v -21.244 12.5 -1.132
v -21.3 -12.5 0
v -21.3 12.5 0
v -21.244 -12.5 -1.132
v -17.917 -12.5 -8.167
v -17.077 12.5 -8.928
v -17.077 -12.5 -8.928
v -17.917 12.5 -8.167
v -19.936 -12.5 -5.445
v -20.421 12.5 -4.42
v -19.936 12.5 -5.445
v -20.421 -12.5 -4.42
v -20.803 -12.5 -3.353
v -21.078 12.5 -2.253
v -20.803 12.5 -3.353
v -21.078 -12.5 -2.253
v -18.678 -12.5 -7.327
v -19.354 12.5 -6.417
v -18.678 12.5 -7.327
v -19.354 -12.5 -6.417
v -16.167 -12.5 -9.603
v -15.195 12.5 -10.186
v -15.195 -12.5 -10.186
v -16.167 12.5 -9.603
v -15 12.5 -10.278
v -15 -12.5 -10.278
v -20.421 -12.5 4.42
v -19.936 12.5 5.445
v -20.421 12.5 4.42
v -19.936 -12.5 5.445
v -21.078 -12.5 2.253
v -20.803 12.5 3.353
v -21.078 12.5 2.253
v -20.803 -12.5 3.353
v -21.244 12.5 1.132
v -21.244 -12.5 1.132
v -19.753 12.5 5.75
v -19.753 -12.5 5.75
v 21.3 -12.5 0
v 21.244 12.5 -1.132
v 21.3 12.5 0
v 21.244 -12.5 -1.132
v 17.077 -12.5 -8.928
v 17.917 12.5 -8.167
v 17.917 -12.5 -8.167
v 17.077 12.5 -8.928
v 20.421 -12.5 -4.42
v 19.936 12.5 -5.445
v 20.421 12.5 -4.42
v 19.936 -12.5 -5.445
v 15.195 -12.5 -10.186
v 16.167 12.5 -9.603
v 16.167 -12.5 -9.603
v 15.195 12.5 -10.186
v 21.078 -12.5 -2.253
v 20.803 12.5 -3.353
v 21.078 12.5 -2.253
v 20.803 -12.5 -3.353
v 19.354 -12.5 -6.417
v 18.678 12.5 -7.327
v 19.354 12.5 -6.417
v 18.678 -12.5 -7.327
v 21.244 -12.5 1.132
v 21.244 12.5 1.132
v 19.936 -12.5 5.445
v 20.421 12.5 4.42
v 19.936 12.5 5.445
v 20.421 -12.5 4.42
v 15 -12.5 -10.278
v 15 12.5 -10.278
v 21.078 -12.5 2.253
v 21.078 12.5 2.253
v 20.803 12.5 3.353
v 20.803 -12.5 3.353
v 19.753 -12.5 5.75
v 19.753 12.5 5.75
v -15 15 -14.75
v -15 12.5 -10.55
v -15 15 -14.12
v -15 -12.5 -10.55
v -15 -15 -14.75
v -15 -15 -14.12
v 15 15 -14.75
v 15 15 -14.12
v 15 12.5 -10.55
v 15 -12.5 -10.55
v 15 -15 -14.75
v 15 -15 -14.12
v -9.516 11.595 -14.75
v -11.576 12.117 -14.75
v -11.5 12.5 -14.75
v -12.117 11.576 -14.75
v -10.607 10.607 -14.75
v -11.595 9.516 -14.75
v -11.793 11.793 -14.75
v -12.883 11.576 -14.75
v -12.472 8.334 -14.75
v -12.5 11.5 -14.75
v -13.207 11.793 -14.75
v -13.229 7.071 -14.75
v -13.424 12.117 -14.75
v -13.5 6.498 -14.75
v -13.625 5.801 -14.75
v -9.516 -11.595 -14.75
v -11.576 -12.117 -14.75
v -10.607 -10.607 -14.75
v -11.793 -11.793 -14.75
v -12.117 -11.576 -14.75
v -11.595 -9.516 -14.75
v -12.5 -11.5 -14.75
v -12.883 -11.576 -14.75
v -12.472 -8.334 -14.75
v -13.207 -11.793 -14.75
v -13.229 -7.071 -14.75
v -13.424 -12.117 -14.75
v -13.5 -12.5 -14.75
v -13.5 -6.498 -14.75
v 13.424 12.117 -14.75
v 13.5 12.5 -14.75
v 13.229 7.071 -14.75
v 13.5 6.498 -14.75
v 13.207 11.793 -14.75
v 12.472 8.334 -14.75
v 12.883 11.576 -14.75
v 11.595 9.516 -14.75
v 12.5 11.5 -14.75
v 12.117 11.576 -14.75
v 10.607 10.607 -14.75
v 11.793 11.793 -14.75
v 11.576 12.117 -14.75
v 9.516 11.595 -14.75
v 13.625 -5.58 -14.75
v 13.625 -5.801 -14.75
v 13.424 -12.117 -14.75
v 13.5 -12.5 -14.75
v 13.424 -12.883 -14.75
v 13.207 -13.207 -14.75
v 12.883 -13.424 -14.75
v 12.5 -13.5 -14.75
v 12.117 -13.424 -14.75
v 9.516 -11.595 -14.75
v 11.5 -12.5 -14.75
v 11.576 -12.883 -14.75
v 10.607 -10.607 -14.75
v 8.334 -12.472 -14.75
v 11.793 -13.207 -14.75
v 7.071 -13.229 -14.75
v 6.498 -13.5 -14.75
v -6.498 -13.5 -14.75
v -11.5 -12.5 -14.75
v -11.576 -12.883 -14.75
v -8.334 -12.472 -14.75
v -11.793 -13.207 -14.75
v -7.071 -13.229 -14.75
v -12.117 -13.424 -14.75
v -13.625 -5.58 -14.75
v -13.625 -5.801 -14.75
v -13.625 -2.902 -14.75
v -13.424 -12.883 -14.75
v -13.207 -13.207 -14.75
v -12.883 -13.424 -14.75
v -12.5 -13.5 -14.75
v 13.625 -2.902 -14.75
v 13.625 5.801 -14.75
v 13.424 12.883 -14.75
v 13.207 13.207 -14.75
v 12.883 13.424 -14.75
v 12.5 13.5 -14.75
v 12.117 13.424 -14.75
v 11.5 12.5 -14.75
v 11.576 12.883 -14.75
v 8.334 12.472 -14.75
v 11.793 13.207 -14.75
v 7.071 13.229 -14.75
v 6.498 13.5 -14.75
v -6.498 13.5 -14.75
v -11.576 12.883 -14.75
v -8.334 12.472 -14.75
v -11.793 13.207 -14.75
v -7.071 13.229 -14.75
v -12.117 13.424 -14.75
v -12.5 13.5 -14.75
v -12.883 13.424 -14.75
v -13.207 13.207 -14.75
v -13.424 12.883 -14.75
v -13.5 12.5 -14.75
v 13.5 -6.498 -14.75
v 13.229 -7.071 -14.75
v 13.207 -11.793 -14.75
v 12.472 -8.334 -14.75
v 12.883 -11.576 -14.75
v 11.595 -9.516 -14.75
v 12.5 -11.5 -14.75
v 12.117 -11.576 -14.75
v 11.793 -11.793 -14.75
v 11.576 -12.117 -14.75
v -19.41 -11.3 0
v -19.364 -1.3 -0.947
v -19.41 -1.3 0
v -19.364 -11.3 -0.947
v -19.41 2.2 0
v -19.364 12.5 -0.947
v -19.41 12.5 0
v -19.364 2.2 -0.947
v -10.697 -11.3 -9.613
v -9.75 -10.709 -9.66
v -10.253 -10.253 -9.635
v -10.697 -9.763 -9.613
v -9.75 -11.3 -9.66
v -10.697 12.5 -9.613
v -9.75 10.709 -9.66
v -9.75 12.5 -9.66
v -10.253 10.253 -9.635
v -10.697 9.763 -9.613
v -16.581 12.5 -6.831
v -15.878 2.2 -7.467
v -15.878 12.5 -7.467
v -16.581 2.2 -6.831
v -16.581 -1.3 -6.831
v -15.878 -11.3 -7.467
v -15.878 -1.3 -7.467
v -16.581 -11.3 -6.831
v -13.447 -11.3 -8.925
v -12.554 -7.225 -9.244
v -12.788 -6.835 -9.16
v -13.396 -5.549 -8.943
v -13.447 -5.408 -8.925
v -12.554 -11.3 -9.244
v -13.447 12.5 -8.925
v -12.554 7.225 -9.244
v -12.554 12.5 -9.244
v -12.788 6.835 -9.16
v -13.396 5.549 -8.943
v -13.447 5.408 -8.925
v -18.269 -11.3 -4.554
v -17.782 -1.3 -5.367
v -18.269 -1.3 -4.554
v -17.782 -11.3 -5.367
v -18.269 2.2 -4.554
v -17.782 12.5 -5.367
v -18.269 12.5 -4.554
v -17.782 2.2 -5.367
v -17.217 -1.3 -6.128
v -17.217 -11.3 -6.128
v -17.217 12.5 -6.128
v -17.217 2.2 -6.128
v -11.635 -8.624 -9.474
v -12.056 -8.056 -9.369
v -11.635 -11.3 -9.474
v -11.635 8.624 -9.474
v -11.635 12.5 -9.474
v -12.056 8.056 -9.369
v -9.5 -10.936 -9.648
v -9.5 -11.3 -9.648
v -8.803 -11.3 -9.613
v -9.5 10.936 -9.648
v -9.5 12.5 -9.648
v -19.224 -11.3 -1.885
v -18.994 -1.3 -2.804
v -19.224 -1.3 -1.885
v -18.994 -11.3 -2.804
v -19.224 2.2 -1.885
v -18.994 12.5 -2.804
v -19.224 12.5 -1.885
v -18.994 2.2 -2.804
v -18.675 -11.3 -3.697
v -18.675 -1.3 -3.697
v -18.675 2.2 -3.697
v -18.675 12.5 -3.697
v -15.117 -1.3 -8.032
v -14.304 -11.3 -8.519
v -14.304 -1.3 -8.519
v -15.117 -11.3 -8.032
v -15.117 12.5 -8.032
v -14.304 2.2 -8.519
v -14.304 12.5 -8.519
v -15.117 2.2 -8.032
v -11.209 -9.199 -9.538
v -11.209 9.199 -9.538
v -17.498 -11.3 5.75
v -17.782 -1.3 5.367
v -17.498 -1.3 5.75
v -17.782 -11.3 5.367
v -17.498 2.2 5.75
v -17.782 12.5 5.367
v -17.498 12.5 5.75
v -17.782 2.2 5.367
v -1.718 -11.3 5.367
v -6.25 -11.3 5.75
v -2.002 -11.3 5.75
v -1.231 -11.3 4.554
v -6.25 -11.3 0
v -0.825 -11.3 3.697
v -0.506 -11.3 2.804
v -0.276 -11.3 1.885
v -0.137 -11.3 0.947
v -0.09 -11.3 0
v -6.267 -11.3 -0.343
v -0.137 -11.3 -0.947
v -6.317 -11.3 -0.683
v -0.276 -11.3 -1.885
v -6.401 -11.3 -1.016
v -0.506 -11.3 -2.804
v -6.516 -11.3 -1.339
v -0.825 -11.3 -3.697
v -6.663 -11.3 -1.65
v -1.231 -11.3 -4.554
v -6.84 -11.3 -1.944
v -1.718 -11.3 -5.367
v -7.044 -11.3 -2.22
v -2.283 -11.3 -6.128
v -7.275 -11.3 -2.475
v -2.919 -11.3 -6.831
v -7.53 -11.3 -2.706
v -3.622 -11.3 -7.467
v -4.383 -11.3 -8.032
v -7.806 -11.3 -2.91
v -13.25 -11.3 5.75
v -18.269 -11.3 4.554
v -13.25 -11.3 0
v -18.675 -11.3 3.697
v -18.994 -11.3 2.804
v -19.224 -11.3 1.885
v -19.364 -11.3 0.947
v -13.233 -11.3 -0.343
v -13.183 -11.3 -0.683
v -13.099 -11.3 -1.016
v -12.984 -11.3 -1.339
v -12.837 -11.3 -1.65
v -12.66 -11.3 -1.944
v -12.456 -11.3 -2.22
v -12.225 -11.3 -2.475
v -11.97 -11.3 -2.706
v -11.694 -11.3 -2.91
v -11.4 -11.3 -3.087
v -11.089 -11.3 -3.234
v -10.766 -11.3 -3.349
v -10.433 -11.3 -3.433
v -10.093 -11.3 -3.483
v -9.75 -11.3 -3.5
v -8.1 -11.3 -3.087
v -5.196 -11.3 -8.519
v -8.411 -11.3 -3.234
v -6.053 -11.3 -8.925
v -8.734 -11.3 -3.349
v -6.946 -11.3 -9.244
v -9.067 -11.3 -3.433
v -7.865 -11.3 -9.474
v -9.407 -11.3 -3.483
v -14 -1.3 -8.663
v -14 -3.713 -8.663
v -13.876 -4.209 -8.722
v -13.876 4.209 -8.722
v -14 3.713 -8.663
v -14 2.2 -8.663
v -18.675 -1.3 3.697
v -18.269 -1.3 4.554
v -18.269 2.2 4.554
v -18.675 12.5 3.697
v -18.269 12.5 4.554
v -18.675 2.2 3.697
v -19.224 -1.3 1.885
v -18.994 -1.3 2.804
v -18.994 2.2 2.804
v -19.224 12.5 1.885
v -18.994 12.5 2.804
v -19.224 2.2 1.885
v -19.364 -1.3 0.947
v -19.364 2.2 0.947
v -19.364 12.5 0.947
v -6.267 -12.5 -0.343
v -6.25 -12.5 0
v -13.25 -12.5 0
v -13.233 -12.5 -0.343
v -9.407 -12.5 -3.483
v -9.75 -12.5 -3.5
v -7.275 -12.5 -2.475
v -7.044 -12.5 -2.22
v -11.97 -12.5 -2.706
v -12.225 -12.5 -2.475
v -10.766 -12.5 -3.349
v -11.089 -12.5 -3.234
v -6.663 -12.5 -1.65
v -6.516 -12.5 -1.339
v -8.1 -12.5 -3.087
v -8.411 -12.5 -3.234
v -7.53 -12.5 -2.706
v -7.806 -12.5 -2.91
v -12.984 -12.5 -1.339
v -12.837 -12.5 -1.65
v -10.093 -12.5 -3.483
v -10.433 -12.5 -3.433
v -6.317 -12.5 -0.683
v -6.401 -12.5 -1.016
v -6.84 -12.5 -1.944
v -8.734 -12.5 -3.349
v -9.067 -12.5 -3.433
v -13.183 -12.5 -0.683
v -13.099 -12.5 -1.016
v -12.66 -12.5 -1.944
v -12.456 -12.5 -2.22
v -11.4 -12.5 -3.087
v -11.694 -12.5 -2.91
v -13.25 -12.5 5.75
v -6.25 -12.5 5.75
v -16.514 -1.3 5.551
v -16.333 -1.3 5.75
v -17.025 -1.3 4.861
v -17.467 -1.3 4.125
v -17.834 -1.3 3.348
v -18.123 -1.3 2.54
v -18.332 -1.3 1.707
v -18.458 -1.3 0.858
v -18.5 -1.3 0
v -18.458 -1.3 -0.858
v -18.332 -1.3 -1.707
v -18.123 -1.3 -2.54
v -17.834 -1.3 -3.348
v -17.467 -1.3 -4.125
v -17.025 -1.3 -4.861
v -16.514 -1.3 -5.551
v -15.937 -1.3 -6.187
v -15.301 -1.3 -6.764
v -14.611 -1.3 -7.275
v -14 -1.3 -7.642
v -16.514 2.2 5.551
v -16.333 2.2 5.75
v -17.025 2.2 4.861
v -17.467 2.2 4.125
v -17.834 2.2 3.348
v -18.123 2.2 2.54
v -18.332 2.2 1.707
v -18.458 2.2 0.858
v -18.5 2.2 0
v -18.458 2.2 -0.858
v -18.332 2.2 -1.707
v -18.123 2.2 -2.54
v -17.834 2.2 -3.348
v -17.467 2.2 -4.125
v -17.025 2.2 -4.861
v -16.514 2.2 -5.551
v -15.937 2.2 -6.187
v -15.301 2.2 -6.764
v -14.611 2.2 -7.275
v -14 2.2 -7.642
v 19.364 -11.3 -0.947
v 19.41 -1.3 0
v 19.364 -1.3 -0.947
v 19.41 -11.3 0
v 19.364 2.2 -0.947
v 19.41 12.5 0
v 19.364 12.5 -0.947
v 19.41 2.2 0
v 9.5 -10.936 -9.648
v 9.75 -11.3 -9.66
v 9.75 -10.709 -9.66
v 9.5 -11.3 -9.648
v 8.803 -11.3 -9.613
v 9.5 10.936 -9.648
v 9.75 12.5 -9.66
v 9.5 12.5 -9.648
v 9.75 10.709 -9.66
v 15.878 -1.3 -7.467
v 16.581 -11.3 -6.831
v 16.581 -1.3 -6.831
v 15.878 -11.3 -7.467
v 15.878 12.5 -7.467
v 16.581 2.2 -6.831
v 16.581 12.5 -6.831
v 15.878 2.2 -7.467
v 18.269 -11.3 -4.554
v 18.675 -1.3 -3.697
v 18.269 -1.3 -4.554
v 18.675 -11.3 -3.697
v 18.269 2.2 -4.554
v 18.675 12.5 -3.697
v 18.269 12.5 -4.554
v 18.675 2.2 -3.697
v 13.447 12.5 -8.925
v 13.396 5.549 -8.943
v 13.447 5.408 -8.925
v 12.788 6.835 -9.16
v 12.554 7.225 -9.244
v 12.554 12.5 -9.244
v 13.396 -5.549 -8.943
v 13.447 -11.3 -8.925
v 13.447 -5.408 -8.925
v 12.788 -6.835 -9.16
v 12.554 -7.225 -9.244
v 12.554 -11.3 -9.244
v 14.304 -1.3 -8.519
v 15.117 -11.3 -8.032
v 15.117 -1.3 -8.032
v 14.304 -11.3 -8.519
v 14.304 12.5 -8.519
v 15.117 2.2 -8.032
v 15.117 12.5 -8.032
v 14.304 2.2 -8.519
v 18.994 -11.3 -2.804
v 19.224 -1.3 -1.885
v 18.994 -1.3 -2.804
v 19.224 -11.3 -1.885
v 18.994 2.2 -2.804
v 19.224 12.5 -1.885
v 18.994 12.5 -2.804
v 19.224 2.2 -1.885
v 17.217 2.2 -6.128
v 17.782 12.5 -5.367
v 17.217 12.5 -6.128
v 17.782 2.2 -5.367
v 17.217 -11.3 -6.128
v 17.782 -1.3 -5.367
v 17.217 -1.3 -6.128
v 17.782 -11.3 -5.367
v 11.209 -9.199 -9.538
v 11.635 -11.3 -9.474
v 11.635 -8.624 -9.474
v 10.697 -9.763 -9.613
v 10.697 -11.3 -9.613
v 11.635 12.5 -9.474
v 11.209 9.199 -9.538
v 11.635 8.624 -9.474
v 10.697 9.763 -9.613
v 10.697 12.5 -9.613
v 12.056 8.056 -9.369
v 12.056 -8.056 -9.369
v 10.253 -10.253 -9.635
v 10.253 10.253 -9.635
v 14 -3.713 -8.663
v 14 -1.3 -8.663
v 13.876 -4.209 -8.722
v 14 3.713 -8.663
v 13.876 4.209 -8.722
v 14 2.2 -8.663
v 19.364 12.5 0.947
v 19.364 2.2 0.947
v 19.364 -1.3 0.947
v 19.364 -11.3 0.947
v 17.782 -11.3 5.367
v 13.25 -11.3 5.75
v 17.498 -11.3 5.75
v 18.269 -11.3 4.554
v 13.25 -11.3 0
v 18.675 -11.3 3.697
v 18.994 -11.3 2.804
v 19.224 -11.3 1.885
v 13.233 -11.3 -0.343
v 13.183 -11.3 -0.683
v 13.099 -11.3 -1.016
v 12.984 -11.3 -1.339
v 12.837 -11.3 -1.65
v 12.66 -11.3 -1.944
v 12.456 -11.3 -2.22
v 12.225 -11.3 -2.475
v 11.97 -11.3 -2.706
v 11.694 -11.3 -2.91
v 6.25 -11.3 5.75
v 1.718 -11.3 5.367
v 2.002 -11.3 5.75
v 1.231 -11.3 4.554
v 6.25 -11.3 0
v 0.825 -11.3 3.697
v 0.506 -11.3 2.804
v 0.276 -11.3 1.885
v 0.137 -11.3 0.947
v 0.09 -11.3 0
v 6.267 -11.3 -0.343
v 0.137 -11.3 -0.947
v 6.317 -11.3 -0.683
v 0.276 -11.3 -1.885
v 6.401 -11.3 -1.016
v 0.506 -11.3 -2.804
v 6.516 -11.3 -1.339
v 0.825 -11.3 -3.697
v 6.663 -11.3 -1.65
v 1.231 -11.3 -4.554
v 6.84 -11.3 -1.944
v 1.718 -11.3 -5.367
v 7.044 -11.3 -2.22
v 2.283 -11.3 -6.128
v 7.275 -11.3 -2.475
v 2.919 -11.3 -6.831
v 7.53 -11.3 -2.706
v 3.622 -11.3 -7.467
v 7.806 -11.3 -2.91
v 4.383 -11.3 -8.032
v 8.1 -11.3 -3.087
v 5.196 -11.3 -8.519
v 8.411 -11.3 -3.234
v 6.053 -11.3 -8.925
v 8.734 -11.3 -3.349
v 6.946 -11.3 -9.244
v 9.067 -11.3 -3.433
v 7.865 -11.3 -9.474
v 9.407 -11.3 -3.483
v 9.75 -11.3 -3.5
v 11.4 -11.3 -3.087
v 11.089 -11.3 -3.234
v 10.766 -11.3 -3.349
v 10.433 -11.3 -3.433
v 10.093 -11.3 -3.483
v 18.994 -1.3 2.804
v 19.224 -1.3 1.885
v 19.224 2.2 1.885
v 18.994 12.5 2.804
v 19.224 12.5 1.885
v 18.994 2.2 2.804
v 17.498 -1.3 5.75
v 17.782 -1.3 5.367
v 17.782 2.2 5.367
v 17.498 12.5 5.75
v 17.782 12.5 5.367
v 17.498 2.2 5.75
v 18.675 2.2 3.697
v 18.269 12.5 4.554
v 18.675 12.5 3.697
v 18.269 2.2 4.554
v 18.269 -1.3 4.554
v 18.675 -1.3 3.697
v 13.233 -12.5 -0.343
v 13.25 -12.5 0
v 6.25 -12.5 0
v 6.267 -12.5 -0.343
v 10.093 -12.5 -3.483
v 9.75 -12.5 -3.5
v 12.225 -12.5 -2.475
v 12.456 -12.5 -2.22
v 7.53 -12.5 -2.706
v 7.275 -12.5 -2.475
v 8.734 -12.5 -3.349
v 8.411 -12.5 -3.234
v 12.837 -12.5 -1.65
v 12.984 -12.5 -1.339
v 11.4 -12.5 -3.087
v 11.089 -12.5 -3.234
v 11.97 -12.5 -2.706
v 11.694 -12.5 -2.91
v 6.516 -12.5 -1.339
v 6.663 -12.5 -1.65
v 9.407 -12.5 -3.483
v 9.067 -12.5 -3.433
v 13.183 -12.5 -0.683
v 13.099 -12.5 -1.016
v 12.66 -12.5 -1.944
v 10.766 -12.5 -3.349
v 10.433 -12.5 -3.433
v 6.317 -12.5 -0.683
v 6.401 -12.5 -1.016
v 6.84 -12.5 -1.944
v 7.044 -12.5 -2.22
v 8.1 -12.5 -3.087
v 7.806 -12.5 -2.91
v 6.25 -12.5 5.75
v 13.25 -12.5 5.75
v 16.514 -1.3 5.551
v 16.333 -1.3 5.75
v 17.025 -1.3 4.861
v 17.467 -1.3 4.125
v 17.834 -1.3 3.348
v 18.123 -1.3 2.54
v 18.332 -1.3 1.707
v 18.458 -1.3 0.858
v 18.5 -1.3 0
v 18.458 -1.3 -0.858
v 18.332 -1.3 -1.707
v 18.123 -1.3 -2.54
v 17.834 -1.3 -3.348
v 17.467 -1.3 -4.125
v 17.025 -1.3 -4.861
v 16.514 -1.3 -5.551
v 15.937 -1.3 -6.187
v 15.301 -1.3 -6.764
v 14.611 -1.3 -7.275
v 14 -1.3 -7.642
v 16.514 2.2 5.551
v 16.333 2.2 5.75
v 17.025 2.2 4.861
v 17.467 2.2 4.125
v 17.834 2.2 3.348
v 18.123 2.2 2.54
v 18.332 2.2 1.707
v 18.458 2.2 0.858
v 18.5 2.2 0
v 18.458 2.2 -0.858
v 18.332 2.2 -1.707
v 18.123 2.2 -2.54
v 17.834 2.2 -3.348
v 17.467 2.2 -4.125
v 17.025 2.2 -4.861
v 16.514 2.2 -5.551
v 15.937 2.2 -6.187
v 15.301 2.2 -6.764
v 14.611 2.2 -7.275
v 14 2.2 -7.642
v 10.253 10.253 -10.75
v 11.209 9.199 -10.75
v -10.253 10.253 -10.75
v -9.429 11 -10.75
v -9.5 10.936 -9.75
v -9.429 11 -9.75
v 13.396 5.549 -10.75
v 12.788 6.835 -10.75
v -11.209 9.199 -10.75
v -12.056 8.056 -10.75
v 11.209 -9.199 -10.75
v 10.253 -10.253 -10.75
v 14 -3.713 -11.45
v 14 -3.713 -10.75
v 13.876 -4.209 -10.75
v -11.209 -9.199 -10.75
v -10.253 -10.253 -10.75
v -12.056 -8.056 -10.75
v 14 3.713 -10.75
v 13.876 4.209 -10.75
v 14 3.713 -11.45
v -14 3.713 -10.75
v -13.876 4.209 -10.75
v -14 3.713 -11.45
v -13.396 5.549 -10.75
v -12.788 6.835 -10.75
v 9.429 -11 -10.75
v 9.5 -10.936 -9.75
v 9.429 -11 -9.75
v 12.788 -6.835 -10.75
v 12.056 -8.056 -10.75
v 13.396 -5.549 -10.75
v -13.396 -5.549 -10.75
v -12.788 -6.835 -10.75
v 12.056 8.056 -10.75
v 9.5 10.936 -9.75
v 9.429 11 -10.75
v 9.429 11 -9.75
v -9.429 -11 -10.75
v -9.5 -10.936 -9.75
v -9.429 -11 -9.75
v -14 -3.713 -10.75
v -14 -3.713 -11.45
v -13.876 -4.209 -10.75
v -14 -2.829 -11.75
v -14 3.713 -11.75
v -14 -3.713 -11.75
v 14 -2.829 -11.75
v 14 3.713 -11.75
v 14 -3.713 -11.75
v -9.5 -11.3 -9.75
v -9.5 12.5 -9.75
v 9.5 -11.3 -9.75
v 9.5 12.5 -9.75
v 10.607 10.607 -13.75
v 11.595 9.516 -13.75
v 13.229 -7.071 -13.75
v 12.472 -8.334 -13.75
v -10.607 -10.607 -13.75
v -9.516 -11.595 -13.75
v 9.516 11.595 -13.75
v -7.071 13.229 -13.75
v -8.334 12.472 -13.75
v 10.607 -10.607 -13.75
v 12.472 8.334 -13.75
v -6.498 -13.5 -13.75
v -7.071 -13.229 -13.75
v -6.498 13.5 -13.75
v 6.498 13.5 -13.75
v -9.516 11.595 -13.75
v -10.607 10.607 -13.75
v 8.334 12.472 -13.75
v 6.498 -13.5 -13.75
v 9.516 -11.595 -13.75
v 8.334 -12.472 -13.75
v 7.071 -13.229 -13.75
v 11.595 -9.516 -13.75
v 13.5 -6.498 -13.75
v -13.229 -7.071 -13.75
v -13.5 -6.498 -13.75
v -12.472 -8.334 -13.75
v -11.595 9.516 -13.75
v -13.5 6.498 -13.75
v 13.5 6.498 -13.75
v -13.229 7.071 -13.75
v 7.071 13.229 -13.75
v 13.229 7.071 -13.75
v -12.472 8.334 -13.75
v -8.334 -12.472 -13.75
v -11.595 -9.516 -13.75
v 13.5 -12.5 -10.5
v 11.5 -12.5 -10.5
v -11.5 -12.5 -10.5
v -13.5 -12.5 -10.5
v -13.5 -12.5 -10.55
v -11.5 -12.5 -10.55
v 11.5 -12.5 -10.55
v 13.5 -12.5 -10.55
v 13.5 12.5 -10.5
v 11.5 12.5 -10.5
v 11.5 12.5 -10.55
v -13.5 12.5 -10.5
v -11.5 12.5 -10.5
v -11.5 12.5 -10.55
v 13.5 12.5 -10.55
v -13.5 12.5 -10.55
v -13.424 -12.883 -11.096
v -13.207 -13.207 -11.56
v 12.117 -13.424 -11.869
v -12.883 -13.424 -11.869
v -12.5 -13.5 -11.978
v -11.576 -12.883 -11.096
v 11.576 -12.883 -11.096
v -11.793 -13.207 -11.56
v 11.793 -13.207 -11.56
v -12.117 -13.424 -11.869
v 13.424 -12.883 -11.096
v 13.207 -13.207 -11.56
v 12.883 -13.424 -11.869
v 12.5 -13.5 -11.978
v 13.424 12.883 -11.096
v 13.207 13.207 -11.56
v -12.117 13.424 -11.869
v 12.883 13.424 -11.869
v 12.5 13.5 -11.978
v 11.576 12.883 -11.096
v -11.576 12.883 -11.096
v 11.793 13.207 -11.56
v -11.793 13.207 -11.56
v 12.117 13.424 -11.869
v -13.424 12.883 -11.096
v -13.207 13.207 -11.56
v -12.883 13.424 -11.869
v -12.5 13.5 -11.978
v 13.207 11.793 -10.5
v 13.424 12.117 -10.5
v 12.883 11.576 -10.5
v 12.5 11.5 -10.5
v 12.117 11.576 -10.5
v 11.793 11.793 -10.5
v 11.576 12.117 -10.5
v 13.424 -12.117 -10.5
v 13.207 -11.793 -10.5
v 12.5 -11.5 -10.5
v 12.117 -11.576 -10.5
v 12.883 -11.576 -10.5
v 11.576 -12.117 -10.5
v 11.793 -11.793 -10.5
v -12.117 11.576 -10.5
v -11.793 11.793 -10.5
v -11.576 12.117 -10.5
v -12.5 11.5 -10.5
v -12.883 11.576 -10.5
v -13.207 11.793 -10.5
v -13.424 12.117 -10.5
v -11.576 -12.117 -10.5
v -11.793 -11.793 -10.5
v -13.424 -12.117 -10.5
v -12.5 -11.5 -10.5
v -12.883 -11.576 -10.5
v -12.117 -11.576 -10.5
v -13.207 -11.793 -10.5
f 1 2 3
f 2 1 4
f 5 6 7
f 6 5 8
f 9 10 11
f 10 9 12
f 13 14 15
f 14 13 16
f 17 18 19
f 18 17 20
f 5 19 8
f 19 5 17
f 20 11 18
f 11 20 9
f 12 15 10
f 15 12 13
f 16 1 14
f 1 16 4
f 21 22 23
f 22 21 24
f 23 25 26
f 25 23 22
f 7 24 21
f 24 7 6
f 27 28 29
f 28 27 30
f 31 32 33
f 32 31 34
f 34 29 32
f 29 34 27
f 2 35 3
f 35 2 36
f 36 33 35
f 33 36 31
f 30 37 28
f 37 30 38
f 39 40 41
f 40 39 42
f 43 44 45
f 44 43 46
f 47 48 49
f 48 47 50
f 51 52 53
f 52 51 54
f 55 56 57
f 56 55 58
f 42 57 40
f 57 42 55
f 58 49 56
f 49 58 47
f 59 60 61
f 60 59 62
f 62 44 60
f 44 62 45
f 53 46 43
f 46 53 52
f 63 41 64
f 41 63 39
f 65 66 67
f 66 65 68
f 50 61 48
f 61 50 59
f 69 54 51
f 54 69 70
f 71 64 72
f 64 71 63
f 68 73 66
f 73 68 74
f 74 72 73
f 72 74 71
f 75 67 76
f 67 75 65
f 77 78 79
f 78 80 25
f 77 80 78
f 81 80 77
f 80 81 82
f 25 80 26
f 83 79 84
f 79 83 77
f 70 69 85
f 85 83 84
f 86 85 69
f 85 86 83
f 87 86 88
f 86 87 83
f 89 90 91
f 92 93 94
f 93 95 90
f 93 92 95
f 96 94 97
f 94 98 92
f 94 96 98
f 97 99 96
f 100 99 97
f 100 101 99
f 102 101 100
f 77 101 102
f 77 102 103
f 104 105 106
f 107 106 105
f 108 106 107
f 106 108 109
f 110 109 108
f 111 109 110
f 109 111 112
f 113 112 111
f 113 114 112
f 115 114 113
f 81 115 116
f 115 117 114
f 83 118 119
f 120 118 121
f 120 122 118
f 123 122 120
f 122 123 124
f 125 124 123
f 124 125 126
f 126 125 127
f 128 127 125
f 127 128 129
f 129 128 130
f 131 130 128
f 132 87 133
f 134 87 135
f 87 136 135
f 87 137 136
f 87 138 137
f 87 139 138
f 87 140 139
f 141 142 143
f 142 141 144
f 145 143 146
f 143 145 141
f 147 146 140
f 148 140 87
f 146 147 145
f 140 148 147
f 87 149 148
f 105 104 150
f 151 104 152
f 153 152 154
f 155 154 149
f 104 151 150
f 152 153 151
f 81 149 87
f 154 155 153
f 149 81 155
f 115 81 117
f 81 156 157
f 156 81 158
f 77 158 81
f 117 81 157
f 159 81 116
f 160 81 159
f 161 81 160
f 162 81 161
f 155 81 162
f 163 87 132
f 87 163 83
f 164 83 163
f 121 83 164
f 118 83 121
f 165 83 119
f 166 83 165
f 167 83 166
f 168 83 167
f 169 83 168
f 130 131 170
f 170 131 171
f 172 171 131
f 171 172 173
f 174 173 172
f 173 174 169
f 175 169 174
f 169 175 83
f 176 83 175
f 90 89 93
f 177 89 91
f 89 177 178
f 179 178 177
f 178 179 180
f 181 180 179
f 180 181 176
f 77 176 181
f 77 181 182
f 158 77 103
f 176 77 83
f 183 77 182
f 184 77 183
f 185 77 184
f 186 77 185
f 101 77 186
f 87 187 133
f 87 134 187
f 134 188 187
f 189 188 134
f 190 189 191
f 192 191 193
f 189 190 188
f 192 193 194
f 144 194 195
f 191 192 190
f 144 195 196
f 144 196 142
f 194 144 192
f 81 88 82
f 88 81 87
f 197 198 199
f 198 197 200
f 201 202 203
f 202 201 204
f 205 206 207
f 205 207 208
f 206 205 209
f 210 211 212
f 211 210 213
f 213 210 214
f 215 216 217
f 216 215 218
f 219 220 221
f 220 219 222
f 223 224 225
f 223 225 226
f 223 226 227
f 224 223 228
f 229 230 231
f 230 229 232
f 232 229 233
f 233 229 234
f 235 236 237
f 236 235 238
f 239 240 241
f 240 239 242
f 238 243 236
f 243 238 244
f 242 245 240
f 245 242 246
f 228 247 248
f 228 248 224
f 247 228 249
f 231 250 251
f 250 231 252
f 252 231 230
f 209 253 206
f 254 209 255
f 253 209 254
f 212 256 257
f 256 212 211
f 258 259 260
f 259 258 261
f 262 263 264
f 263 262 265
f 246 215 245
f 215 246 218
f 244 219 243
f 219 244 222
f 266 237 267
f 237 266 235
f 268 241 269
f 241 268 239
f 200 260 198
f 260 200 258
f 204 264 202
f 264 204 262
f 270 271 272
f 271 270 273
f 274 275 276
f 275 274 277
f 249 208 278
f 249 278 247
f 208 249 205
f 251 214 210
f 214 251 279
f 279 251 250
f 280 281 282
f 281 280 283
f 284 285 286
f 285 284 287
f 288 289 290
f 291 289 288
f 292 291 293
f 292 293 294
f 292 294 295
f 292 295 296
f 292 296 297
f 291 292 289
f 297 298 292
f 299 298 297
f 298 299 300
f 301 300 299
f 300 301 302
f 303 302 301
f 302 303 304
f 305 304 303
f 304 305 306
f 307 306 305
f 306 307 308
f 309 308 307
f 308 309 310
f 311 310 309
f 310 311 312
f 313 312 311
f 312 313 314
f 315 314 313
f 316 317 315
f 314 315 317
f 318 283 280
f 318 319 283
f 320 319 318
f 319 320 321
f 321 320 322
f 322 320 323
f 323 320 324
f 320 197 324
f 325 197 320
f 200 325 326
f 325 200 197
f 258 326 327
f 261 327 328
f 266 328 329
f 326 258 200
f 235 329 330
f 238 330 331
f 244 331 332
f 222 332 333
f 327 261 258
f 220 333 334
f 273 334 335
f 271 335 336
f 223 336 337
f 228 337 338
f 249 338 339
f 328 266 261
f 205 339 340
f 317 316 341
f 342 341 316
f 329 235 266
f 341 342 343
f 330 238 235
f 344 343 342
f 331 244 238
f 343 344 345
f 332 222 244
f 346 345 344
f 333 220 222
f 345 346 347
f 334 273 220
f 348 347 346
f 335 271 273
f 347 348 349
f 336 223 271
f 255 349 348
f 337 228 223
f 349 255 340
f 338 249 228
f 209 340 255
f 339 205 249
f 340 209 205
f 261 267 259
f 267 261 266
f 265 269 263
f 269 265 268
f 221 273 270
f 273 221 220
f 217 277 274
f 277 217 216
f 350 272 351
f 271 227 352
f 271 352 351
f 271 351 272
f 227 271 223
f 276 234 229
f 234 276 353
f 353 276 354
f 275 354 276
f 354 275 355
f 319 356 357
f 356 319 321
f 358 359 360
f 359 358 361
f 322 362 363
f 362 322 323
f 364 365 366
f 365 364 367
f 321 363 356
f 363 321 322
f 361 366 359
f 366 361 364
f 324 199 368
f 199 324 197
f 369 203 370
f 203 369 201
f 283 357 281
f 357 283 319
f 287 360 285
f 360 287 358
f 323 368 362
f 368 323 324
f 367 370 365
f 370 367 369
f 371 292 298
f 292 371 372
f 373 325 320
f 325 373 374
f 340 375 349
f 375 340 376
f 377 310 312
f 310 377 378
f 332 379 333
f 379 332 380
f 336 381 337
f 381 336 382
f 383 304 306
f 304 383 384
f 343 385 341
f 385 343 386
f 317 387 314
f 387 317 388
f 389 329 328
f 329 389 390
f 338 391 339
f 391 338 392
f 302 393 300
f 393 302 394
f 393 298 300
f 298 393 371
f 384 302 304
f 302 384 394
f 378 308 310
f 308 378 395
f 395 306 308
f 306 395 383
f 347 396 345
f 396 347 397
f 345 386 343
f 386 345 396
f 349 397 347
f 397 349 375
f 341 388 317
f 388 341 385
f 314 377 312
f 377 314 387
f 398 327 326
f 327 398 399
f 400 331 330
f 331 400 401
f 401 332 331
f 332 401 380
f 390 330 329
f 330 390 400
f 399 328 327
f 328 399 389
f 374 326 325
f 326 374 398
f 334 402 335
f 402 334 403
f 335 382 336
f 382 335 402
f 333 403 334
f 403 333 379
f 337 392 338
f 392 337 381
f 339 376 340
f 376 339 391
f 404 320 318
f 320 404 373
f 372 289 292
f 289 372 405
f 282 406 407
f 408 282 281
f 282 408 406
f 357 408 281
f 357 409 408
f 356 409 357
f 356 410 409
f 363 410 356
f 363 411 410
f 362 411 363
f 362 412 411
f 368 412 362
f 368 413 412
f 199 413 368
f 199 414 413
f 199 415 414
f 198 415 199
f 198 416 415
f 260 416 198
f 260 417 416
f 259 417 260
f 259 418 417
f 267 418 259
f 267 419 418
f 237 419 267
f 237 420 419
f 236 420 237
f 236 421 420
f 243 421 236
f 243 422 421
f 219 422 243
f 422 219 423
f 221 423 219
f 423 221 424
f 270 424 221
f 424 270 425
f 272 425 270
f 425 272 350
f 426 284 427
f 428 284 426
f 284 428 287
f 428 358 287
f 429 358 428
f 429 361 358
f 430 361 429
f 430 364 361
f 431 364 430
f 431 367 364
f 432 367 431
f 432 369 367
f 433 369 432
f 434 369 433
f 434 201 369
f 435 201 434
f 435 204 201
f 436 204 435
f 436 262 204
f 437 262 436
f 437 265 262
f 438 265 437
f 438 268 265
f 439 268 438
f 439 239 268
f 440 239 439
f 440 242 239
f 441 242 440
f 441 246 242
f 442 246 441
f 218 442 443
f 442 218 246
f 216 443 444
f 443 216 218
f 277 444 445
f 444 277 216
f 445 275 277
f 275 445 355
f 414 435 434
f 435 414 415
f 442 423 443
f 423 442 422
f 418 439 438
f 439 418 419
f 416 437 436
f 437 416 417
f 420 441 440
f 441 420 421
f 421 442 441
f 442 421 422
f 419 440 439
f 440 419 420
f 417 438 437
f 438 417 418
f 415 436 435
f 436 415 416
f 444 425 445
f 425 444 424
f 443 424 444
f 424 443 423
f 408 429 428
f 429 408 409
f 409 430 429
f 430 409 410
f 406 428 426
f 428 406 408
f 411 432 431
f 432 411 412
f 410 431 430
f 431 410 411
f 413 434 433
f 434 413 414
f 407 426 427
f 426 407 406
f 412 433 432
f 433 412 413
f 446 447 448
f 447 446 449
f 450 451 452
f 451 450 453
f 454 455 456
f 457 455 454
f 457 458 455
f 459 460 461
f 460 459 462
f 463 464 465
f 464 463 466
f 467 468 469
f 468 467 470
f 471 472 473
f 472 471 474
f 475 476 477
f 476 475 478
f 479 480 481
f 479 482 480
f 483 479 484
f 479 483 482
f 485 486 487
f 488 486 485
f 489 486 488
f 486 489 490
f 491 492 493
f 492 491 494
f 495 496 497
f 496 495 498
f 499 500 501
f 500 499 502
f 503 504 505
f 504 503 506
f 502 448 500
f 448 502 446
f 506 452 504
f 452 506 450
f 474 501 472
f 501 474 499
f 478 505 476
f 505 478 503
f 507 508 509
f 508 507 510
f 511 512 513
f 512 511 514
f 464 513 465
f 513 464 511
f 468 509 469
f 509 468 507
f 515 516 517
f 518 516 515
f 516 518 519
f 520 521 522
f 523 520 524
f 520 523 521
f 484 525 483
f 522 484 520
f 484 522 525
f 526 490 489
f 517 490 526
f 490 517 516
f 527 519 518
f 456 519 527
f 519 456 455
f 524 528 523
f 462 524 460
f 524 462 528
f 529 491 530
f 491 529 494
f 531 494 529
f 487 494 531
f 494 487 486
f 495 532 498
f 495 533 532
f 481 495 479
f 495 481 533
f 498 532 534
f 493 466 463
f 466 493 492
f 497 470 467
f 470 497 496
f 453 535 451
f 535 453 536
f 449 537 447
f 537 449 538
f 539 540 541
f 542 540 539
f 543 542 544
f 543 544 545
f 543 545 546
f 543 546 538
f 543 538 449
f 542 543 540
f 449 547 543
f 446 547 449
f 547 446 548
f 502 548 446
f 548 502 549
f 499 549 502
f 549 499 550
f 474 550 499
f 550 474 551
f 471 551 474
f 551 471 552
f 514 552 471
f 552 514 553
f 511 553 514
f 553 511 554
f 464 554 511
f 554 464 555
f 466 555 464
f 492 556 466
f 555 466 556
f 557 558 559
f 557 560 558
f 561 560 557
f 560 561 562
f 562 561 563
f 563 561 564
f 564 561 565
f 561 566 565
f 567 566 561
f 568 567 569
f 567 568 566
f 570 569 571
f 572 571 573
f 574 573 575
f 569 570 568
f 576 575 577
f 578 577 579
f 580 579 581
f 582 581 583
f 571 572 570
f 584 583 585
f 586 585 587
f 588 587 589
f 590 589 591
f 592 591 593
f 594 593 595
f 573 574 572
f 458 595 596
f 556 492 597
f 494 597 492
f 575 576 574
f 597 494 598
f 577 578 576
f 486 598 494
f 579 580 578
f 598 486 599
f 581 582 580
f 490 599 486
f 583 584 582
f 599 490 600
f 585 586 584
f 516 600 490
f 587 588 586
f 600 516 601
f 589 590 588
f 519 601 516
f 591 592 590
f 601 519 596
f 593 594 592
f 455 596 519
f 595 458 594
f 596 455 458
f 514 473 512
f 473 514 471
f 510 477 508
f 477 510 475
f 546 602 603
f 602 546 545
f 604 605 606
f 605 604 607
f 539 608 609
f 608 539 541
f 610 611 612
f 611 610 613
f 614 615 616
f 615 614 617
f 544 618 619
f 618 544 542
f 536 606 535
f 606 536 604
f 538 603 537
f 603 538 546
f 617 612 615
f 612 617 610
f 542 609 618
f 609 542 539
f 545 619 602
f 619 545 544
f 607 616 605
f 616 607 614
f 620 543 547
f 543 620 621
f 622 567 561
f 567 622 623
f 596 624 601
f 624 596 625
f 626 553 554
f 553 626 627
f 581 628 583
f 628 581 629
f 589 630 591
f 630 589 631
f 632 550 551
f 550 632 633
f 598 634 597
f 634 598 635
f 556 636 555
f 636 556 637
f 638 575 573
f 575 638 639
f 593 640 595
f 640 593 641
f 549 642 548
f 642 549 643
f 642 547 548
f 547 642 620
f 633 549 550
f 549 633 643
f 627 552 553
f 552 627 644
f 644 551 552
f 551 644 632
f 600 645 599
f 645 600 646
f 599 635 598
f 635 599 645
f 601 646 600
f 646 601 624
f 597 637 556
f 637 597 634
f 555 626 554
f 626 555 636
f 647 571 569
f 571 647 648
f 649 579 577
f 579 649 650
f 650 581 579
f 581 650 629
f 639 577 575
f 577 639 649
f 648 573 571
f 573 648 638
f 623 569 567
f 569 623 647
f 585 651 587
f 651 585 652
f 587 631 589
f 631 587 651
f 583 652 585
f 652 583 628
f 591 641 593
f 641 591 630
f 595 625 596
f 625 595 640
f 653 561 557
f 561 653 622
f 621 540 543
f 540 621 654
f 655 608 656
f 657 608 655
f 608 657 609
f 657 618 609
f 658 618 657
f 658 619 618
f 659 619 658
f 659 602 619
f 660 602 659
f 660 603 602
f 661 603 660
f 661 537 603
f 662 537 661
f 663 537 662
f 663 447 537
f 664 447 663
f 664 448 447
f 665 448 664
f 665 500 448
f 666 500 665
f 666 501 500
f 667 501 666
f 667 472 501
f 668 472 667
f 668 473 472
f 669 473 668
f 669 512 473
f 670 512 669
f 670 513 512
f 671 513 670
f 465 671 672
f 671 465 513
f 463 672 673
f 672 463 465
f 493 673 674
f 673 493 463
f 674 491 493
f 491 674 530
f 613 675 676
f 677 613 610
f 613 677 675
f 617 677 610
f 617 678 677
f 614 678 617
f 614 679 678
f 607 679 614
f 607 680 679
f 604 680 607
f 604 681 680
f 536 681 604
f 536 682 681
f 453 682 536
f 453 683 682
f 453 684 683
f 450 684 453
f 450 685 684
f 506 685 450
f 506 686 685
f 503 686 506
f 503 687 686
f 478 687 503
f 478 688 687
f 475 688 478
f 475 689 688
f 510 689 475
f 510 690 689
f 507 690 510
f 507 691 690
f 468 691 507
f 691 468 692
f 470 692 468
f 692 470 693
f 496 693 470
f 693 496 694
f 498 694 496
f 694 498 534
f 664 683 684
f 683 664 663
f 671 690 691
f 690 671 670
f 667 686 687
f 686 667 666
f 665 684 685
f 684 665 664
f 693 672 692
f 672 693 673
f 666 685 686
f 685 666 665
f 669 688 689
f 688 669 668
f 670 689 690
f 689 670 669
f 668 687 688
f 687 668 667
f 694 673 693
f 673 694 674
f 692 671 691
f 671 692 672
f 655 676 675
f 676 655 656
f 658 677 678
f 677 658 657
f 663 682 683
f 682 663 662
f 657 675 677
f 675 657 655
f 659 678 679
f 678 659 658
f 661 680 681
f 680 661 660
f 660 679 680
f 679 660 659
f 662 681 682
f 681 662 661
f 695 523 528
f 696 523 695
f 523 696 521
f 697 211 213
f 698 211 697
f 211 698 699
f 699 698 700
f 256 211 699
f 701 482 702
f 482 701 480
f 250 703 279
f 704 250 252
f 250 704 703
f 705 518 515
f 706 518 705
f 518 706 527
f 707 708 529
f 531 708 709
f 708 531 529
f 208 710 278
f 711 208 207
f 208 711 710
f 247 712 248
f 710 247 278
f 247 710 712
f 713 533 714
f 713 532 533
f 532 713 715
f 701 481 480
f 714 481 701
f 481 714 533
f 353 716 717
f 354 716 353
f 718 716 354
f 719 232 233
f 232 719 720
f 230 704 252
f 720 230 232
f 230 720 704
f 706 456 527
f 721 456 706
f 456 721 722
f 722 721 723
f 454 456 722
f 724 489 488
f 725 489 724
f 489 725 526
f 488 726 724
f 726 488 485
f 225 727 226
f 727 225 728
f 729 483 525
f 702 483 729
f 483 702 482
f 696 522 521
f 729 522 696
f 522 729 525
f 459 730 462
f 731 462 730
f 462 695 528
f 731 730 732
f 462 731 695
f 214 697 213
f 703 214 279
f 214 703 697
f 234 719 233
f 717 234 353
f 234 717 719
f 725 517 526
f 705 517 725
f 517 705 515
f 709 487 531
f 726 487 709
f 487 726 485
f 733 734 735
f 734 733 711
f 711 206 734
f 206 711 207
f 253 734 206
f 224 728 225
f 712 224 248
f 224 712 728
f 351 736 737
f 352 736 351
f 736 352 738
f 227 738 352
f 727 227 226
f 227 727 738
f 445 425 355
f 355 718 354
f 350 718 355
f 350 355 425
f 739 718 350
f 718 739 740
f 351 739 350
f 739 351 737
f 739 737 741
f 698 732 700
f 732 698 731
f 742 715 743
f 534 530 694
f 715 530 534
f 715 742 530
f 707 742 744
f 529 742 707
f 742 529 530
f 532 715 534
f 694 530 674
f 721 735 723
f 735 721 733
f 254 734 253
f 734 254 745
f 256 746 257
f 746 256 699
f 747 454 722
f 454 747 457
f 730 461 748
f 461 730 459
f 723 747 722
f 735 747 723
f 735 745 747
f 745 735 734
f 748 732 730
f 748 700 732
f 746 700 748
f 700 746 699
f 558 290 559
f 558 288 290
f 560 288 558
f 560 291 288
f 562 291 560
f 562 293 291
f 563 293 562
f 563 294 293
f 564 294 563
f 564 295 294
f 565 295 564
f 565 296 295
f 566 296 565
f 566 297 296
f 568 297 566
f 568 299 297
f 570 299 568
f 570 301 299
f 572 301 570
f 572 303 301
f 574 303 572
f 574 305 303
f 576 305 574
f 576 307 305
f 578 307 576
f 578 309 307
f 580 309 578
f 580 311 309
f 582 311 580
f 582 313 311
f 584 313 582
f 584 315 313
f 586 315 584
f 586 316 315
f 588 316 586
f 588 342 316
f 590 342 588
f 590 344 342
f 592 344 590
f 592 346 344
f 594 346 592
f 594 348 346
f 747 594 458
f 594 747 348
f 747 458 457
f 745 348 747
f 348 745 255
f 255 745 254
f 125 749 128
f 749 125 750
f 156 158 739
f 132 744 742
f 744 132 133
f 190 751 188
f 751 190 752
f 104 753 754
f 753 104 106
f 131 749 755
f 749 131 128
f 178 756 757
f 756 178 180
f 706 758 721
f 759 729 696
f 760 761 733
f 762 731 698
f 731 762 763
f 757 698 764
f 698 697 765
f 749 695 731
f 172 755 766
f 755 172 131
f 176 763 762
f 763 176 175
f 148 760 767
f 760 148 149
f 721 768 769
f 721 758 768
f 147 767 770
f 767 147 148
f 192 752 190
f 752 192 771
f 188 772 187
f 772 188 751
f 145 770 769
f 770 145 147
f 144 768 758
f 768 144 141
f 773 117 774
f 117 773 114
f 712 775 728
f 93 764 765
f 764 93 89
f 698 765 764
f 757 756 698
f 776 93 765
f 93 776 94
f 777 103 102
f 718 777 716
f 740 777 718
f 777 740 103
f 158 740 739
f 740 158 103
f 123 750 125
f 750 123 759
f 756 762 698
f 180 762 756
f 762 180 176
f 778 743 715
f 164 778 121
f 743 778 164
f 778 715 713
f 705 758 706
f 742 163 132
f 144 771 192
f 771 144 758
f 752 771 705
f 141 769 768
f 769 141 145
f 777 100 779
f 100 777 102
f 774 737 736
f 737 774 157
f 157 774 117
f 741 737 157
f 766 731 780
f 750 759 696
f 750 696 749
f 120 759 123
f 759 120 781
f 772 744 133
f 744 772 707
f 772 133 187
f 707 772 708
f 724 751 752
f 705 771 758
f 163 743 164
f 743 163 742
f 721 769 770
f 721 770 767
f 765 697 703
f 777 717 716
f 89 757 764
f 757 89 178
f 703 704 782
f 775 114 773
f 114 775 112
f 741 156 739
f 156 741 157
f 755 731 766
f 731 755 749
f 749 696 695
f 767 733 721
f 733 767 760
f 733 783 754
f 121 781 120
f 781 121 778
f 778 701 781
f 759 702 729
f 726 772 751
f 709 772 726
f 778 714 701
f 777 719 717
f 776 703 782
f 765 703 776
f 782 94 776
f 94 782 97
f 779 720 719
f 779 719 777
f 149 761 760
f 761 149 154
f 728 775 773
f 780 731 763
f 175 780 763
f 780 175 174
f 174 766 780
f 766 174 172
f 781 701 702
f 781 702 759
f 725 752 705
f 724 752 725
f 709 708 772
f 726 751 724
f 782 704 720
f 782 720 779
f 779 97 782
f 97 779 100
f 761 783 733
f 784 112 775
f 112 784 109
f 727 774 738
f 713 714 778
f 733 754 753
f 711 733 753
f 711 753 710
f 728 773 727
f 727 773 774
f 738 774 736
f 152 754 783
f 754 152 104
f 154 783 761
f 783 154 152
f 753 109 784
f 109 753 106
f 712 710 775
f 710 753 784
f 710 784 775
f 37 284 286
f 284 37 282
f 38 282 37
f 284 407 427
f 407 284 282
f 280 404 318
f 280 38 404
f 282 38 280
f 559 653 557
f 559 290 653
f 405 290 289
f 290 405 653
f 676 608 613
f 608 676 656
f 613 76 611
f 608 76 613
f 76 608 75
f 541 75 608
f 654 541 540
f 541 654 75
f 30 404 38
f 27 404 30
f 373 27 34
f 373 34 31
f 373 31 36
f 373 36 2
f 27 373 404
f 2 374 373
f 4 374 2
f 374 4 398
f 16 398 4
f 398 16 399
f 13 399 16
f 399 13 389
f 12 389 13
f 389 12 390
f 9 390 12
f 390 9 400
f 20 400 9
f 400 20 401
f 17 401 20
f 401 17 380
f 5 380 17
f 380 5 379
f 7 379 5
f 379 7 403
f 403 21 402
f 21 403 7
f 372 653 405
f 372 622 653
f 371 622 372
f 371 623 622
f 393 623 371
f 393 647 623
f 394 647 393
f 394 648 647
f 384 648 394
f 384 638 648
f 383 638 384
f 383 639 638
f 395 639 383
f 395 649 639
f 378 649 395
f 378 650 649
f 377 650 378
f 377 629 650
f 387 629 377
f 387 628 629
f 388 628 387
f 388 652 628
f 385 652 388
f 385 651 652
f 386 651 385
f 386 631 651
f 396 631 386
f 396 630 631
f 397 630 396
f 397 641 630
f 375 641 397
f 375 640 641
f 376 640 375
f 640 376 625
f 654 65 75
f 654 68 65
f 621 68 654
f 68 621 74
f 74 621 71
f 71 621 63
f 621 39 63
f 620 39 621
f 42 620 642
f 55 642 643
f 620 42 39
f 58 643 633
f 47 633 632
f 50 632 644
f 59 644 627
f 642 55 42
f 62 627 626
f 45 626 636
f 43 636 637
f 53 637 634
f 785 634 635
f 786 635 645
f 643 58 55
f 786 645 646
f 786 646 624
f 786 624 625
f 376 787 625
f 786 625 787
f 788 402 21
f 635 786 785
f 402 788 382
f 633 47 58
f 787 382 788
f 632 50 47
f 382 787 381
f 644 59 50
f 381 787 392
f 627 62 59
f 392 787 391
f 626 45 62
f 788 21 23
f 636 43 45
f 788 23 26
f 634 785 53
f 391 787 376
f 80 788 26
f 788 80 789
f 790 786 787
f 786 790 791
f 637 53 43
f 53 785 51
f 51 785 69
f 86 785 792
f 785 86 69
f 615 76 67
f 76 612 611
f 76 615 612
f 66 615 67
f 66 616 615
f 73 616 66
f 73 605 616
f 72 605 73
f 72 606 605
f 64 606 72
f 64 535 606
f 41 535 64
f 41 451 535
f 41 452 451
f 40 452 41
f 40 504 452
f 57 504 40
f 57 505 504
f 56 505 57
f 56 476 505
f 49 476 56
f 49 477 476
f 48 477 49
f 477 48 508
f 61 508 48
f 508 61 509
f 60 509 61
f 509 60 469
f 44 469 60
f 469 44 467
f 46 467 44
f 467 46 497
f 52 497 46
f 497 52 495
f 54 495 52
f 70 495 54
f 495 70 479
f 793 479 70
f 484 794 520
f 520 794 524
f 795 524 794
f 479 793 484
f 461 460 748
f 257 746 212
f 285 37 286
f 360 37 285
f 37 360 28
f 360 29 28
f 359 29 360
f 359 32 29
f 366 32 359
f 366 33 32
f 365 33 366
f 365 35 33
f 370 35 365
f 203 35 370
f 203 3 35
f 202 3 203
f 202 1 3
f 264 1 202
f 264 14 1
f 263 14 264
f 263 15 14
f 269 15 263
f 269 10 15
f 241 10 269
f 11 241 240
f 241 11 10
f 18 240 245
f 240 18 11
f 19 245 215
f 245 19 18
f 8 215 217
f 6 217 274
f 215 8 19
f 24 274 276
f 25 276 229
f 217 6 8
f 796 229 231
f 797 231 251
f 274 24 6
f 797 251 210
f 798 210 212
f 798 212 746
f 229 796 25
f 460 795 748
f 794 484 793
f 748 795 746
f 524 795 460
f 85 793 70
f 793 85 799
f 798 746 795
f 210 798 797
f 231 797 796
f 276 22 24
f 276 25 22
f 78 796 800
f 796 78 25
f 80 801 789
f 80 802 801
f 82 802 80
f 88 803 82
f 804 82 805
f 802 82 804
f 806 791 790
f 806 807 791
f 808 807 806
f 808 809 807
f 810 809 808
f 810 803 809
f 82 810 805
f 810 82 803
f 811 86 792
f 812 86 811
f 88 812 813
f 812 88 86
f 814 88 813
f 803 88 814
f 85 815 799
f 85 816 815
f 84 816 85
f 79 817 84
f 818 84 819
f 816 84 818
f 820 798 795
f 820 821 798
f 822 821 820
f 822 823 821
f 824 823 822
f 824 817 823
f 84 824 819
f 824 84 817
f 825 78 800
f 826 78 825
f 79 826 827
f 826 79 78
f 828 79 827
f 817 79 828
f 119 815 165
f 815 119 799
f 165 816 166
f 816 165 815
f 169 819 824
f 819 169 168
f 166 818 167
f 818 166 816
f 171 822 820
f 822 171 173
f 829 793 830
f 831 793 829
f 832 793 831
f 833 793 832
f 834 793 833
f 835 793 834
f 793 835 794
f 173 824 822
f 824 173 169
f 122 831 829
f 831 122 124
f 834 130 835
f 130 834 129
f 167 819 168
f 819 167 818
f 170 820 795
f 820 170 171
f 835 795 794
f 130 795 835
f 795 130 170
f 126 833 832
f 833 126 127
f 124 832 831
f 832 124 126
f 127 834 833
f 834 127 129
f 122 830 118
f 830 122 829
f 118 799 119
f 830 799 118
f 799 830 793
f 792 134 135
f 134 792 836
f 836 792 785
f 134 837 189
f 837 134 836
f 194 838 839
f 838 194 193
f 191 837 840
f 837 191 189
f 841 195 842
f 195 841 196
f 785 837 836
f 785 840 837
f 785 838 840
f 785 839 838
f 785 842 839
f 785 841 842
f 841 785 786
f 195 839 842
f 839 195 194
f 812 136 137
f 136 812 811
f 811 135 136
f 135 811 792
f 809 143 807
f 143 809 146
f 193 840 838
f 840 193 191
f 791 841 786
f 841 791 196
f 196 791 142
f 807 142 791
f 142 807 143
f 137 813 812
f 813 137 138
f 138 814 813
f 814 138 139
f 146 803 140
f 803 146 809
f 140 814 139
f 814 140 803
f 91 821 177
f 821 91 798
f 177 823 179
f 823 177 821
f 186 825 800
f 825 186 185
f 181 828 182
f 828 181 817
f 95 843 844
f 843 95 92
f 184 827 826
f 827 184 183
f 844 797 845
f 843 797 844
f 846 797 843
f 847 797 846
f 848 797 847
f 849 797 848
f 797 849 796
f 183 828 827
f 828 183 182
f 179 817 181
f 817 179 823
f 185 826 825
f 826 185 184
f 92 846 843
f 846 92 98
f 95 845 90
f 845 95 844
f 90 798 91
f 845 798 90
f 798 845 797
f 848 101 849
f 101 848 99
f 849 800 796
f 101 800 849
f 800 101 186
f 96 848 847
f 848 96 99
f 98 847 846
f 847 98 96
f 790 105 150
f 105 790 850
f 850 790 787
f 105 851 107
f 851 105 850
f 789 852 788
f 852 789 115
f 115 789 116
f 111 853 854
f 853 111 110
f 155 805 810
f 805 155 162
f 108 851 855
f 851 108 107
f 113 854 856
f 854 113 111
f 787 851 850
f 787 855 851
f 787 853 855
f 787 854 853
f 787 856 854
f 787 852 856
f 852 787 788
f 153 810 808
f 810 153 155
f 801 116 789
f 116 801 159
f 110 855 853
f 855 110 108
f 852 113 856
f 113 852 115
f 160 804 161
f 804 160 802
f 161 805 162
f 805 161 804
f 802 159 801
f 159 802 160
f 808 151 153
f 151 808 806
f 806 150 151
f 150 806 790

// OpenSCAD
// file: settings.scad
/*
	Konfiguracni soubor pro experimentalni dual extruder na RebeliX X2
	
	Sledujte nas na:		  
			www.RepRap4U.cz
			www.facebook.com/RebeliX.cz
			https://twitter.com/reprap4u
			https://plus.google.com/+Reprap4uCz-3Dtiskarna-RebeliX
*/

// Prumer chladice HE - urcuje minimalni vzdalenost trysek od sebe
HE_d = 19.5;

// Delka chladice
HE_l = 25;

// Vzdalenost mezi tryskami
nozzle_distance = 19;

// Sirka extrudovane linky
extrusion_width = 0.6;

// Tloustka steny
width = 3*extrusion_width;

// Vyska vrstvy
layer_height = 0.3;

// Prumer teflonove trubicky (2 = bez teflonove trubicky)
teflon_tube_diameter = 2;
//teflon_tube_diameter = 4;
// main file
// RebeliX
//
// Drzak na dva hotendy pro 30mm fan
// GNU GPL v3
// Martin Neruda <neruda@reprap4u.cz>
// http://www.reprap4u.cz

include <settings.scad>

extrusion_width = 0.6;

HE_l = 25;

nozzle_position = nozzle_distance/2 >= HE_d/2 ? nozzle_distance/2 : HE_d/2;

module nozzles_fan_base()
{
	// Chladice 1
	translate([-nozzle_position,0,0]) cylinder(r=HE_d/2 + width,h=HE_l + 0.6,$fn=64,center=true);
	// Chladice 2
	translate([nozzle_position,0,0]) cylinder(r=HE_d/2 + width,h=HE_l + 0.6,$fn=64,center=true);
	// Fan 30x30 mm
	translate([0,HE_d/2,0]) cube([30,10,HE_l + 5],center=true);
}

module nozzles_fan_cuts()
{
	// Chladice 1
	translate([-nozzle_position,0,2*extrusion_width]) HE();
	// Chladice 2
	translate([nozzle_position,0,2*extrusion_width]) HE();
	// Vnitrni vyrez
	translate([0,0,2*extrusion_width]) cube([nozzle_distance,HE_d,HE_l],center=true);
	
	// Vyrez pro ventilator
	hull()
	{
	  intersection()
	  {
	    translate([0,HE_d/2 + 10/2,0]) rotate([90,0,0]) cylinder(r=15,h=2,$fn=64,center=true);
	    translate([0,HE_d/2 + 10/2,0]) cube([30 - 5*extrusion_width ,2,30 - 5*extrusion_width],center=true);
	  }
	  intersection()
	  {
	    translate([0,HE_d/2 + 1.5 ,0]) rotate([90,0,0]) cylinder(r=14.5,h=1,$fn=64,center=true);
	    translate([0,HE_d/2 + 1.5,0]) cube([28,1,HE_l - 5*extrusion_width],center=true);
	  }
	}
	intersection()
	{
	  translate([0,HE_d/2 - 0.3 ,0]) rotate([90,0,0]) cylinder(r=14.5,h=4,$fn=64,center=true);
	  translate([0,HE_d/2 - 0.3,0]) cube([HE_l + 3,4,HE_l - 5*extrusion_width],center=true);
	}
	// Seriznuti drzaku
	translate([0,-HE_d + 4,0]) cube([100,HE_d,HE_l + 1],center=true);
	
	translate([-100/2,HE_d/2 + 0.8,-HE_l/2]) rotate([180,0,0]) cube([100,HE_d,HE_l]);
	translate([-100/2,HE_d/2 + 0.8,HE_l/2]) rotate([90,0,0]) cube([100,HE_d,HE_l]);
	
	translate([-100/2,HE_d/2 + 0.8,-HE_l/2]) rotate([180 + 55,0,0]) cube([100,HE_d,HE_l]);
	translate([-100/2,HE_d/2 + 0.8,HE_l/2]) rotate([35,0,0]) cube([100,HE_d,HE_l]);
	
	translate([25/2,13,25/2]) rotate([90,0,0]) cylinder(r=1,h=5,$fn=16,center=true);
	translate([25/2,13,-25/2]) rotate([90,0,0]) cylinder(r=1,h=5,$fn=16,center=true);
	translate([-25/2,13,25/2]) rotate([90,0,0]) cylinder(r=1,h=5,$fn=16,center=true);
	translate([-25/2,13,-25/2]) rotate([90,0,0]) cylinder(r=1,h=5,$fn=16,center=true);
}

module HE()
{
  difference()
  {
    union()
	{
      cylinder(r=HE_d/2 + 0.01 - 0.1,h=HE_l,$fn=64,center=true);
      cylinder(r=7/2,h=HE_l + 20,$fn=64,center=true);
      translate([0,-20/2,0]) cube([7,20,HE_l + 20],center=true);
	}
	difference()
	{
	  translate([0,0,-HE_l/2 + 3.5/2 + 9.4 + extrusion_width]) cylinder(r=HE_d/2 + 1,h=3.5,$fn=64,center=true);
	  translate([0,0,-HE_l/2 + 3.5/2 + 9.4 + extrusion_width]) cylinder(r=HE_d/2 - 1,h=4,$fn=64,center=true);
	}
  }	
}


module nozzles_fan_30mm()
{
  difference()
  {
	nozzles_fan_base();
	nozzles_fan_cuts();
  }
}

rotate([-90,0,0]) 
nozzles_fan_30mm();
